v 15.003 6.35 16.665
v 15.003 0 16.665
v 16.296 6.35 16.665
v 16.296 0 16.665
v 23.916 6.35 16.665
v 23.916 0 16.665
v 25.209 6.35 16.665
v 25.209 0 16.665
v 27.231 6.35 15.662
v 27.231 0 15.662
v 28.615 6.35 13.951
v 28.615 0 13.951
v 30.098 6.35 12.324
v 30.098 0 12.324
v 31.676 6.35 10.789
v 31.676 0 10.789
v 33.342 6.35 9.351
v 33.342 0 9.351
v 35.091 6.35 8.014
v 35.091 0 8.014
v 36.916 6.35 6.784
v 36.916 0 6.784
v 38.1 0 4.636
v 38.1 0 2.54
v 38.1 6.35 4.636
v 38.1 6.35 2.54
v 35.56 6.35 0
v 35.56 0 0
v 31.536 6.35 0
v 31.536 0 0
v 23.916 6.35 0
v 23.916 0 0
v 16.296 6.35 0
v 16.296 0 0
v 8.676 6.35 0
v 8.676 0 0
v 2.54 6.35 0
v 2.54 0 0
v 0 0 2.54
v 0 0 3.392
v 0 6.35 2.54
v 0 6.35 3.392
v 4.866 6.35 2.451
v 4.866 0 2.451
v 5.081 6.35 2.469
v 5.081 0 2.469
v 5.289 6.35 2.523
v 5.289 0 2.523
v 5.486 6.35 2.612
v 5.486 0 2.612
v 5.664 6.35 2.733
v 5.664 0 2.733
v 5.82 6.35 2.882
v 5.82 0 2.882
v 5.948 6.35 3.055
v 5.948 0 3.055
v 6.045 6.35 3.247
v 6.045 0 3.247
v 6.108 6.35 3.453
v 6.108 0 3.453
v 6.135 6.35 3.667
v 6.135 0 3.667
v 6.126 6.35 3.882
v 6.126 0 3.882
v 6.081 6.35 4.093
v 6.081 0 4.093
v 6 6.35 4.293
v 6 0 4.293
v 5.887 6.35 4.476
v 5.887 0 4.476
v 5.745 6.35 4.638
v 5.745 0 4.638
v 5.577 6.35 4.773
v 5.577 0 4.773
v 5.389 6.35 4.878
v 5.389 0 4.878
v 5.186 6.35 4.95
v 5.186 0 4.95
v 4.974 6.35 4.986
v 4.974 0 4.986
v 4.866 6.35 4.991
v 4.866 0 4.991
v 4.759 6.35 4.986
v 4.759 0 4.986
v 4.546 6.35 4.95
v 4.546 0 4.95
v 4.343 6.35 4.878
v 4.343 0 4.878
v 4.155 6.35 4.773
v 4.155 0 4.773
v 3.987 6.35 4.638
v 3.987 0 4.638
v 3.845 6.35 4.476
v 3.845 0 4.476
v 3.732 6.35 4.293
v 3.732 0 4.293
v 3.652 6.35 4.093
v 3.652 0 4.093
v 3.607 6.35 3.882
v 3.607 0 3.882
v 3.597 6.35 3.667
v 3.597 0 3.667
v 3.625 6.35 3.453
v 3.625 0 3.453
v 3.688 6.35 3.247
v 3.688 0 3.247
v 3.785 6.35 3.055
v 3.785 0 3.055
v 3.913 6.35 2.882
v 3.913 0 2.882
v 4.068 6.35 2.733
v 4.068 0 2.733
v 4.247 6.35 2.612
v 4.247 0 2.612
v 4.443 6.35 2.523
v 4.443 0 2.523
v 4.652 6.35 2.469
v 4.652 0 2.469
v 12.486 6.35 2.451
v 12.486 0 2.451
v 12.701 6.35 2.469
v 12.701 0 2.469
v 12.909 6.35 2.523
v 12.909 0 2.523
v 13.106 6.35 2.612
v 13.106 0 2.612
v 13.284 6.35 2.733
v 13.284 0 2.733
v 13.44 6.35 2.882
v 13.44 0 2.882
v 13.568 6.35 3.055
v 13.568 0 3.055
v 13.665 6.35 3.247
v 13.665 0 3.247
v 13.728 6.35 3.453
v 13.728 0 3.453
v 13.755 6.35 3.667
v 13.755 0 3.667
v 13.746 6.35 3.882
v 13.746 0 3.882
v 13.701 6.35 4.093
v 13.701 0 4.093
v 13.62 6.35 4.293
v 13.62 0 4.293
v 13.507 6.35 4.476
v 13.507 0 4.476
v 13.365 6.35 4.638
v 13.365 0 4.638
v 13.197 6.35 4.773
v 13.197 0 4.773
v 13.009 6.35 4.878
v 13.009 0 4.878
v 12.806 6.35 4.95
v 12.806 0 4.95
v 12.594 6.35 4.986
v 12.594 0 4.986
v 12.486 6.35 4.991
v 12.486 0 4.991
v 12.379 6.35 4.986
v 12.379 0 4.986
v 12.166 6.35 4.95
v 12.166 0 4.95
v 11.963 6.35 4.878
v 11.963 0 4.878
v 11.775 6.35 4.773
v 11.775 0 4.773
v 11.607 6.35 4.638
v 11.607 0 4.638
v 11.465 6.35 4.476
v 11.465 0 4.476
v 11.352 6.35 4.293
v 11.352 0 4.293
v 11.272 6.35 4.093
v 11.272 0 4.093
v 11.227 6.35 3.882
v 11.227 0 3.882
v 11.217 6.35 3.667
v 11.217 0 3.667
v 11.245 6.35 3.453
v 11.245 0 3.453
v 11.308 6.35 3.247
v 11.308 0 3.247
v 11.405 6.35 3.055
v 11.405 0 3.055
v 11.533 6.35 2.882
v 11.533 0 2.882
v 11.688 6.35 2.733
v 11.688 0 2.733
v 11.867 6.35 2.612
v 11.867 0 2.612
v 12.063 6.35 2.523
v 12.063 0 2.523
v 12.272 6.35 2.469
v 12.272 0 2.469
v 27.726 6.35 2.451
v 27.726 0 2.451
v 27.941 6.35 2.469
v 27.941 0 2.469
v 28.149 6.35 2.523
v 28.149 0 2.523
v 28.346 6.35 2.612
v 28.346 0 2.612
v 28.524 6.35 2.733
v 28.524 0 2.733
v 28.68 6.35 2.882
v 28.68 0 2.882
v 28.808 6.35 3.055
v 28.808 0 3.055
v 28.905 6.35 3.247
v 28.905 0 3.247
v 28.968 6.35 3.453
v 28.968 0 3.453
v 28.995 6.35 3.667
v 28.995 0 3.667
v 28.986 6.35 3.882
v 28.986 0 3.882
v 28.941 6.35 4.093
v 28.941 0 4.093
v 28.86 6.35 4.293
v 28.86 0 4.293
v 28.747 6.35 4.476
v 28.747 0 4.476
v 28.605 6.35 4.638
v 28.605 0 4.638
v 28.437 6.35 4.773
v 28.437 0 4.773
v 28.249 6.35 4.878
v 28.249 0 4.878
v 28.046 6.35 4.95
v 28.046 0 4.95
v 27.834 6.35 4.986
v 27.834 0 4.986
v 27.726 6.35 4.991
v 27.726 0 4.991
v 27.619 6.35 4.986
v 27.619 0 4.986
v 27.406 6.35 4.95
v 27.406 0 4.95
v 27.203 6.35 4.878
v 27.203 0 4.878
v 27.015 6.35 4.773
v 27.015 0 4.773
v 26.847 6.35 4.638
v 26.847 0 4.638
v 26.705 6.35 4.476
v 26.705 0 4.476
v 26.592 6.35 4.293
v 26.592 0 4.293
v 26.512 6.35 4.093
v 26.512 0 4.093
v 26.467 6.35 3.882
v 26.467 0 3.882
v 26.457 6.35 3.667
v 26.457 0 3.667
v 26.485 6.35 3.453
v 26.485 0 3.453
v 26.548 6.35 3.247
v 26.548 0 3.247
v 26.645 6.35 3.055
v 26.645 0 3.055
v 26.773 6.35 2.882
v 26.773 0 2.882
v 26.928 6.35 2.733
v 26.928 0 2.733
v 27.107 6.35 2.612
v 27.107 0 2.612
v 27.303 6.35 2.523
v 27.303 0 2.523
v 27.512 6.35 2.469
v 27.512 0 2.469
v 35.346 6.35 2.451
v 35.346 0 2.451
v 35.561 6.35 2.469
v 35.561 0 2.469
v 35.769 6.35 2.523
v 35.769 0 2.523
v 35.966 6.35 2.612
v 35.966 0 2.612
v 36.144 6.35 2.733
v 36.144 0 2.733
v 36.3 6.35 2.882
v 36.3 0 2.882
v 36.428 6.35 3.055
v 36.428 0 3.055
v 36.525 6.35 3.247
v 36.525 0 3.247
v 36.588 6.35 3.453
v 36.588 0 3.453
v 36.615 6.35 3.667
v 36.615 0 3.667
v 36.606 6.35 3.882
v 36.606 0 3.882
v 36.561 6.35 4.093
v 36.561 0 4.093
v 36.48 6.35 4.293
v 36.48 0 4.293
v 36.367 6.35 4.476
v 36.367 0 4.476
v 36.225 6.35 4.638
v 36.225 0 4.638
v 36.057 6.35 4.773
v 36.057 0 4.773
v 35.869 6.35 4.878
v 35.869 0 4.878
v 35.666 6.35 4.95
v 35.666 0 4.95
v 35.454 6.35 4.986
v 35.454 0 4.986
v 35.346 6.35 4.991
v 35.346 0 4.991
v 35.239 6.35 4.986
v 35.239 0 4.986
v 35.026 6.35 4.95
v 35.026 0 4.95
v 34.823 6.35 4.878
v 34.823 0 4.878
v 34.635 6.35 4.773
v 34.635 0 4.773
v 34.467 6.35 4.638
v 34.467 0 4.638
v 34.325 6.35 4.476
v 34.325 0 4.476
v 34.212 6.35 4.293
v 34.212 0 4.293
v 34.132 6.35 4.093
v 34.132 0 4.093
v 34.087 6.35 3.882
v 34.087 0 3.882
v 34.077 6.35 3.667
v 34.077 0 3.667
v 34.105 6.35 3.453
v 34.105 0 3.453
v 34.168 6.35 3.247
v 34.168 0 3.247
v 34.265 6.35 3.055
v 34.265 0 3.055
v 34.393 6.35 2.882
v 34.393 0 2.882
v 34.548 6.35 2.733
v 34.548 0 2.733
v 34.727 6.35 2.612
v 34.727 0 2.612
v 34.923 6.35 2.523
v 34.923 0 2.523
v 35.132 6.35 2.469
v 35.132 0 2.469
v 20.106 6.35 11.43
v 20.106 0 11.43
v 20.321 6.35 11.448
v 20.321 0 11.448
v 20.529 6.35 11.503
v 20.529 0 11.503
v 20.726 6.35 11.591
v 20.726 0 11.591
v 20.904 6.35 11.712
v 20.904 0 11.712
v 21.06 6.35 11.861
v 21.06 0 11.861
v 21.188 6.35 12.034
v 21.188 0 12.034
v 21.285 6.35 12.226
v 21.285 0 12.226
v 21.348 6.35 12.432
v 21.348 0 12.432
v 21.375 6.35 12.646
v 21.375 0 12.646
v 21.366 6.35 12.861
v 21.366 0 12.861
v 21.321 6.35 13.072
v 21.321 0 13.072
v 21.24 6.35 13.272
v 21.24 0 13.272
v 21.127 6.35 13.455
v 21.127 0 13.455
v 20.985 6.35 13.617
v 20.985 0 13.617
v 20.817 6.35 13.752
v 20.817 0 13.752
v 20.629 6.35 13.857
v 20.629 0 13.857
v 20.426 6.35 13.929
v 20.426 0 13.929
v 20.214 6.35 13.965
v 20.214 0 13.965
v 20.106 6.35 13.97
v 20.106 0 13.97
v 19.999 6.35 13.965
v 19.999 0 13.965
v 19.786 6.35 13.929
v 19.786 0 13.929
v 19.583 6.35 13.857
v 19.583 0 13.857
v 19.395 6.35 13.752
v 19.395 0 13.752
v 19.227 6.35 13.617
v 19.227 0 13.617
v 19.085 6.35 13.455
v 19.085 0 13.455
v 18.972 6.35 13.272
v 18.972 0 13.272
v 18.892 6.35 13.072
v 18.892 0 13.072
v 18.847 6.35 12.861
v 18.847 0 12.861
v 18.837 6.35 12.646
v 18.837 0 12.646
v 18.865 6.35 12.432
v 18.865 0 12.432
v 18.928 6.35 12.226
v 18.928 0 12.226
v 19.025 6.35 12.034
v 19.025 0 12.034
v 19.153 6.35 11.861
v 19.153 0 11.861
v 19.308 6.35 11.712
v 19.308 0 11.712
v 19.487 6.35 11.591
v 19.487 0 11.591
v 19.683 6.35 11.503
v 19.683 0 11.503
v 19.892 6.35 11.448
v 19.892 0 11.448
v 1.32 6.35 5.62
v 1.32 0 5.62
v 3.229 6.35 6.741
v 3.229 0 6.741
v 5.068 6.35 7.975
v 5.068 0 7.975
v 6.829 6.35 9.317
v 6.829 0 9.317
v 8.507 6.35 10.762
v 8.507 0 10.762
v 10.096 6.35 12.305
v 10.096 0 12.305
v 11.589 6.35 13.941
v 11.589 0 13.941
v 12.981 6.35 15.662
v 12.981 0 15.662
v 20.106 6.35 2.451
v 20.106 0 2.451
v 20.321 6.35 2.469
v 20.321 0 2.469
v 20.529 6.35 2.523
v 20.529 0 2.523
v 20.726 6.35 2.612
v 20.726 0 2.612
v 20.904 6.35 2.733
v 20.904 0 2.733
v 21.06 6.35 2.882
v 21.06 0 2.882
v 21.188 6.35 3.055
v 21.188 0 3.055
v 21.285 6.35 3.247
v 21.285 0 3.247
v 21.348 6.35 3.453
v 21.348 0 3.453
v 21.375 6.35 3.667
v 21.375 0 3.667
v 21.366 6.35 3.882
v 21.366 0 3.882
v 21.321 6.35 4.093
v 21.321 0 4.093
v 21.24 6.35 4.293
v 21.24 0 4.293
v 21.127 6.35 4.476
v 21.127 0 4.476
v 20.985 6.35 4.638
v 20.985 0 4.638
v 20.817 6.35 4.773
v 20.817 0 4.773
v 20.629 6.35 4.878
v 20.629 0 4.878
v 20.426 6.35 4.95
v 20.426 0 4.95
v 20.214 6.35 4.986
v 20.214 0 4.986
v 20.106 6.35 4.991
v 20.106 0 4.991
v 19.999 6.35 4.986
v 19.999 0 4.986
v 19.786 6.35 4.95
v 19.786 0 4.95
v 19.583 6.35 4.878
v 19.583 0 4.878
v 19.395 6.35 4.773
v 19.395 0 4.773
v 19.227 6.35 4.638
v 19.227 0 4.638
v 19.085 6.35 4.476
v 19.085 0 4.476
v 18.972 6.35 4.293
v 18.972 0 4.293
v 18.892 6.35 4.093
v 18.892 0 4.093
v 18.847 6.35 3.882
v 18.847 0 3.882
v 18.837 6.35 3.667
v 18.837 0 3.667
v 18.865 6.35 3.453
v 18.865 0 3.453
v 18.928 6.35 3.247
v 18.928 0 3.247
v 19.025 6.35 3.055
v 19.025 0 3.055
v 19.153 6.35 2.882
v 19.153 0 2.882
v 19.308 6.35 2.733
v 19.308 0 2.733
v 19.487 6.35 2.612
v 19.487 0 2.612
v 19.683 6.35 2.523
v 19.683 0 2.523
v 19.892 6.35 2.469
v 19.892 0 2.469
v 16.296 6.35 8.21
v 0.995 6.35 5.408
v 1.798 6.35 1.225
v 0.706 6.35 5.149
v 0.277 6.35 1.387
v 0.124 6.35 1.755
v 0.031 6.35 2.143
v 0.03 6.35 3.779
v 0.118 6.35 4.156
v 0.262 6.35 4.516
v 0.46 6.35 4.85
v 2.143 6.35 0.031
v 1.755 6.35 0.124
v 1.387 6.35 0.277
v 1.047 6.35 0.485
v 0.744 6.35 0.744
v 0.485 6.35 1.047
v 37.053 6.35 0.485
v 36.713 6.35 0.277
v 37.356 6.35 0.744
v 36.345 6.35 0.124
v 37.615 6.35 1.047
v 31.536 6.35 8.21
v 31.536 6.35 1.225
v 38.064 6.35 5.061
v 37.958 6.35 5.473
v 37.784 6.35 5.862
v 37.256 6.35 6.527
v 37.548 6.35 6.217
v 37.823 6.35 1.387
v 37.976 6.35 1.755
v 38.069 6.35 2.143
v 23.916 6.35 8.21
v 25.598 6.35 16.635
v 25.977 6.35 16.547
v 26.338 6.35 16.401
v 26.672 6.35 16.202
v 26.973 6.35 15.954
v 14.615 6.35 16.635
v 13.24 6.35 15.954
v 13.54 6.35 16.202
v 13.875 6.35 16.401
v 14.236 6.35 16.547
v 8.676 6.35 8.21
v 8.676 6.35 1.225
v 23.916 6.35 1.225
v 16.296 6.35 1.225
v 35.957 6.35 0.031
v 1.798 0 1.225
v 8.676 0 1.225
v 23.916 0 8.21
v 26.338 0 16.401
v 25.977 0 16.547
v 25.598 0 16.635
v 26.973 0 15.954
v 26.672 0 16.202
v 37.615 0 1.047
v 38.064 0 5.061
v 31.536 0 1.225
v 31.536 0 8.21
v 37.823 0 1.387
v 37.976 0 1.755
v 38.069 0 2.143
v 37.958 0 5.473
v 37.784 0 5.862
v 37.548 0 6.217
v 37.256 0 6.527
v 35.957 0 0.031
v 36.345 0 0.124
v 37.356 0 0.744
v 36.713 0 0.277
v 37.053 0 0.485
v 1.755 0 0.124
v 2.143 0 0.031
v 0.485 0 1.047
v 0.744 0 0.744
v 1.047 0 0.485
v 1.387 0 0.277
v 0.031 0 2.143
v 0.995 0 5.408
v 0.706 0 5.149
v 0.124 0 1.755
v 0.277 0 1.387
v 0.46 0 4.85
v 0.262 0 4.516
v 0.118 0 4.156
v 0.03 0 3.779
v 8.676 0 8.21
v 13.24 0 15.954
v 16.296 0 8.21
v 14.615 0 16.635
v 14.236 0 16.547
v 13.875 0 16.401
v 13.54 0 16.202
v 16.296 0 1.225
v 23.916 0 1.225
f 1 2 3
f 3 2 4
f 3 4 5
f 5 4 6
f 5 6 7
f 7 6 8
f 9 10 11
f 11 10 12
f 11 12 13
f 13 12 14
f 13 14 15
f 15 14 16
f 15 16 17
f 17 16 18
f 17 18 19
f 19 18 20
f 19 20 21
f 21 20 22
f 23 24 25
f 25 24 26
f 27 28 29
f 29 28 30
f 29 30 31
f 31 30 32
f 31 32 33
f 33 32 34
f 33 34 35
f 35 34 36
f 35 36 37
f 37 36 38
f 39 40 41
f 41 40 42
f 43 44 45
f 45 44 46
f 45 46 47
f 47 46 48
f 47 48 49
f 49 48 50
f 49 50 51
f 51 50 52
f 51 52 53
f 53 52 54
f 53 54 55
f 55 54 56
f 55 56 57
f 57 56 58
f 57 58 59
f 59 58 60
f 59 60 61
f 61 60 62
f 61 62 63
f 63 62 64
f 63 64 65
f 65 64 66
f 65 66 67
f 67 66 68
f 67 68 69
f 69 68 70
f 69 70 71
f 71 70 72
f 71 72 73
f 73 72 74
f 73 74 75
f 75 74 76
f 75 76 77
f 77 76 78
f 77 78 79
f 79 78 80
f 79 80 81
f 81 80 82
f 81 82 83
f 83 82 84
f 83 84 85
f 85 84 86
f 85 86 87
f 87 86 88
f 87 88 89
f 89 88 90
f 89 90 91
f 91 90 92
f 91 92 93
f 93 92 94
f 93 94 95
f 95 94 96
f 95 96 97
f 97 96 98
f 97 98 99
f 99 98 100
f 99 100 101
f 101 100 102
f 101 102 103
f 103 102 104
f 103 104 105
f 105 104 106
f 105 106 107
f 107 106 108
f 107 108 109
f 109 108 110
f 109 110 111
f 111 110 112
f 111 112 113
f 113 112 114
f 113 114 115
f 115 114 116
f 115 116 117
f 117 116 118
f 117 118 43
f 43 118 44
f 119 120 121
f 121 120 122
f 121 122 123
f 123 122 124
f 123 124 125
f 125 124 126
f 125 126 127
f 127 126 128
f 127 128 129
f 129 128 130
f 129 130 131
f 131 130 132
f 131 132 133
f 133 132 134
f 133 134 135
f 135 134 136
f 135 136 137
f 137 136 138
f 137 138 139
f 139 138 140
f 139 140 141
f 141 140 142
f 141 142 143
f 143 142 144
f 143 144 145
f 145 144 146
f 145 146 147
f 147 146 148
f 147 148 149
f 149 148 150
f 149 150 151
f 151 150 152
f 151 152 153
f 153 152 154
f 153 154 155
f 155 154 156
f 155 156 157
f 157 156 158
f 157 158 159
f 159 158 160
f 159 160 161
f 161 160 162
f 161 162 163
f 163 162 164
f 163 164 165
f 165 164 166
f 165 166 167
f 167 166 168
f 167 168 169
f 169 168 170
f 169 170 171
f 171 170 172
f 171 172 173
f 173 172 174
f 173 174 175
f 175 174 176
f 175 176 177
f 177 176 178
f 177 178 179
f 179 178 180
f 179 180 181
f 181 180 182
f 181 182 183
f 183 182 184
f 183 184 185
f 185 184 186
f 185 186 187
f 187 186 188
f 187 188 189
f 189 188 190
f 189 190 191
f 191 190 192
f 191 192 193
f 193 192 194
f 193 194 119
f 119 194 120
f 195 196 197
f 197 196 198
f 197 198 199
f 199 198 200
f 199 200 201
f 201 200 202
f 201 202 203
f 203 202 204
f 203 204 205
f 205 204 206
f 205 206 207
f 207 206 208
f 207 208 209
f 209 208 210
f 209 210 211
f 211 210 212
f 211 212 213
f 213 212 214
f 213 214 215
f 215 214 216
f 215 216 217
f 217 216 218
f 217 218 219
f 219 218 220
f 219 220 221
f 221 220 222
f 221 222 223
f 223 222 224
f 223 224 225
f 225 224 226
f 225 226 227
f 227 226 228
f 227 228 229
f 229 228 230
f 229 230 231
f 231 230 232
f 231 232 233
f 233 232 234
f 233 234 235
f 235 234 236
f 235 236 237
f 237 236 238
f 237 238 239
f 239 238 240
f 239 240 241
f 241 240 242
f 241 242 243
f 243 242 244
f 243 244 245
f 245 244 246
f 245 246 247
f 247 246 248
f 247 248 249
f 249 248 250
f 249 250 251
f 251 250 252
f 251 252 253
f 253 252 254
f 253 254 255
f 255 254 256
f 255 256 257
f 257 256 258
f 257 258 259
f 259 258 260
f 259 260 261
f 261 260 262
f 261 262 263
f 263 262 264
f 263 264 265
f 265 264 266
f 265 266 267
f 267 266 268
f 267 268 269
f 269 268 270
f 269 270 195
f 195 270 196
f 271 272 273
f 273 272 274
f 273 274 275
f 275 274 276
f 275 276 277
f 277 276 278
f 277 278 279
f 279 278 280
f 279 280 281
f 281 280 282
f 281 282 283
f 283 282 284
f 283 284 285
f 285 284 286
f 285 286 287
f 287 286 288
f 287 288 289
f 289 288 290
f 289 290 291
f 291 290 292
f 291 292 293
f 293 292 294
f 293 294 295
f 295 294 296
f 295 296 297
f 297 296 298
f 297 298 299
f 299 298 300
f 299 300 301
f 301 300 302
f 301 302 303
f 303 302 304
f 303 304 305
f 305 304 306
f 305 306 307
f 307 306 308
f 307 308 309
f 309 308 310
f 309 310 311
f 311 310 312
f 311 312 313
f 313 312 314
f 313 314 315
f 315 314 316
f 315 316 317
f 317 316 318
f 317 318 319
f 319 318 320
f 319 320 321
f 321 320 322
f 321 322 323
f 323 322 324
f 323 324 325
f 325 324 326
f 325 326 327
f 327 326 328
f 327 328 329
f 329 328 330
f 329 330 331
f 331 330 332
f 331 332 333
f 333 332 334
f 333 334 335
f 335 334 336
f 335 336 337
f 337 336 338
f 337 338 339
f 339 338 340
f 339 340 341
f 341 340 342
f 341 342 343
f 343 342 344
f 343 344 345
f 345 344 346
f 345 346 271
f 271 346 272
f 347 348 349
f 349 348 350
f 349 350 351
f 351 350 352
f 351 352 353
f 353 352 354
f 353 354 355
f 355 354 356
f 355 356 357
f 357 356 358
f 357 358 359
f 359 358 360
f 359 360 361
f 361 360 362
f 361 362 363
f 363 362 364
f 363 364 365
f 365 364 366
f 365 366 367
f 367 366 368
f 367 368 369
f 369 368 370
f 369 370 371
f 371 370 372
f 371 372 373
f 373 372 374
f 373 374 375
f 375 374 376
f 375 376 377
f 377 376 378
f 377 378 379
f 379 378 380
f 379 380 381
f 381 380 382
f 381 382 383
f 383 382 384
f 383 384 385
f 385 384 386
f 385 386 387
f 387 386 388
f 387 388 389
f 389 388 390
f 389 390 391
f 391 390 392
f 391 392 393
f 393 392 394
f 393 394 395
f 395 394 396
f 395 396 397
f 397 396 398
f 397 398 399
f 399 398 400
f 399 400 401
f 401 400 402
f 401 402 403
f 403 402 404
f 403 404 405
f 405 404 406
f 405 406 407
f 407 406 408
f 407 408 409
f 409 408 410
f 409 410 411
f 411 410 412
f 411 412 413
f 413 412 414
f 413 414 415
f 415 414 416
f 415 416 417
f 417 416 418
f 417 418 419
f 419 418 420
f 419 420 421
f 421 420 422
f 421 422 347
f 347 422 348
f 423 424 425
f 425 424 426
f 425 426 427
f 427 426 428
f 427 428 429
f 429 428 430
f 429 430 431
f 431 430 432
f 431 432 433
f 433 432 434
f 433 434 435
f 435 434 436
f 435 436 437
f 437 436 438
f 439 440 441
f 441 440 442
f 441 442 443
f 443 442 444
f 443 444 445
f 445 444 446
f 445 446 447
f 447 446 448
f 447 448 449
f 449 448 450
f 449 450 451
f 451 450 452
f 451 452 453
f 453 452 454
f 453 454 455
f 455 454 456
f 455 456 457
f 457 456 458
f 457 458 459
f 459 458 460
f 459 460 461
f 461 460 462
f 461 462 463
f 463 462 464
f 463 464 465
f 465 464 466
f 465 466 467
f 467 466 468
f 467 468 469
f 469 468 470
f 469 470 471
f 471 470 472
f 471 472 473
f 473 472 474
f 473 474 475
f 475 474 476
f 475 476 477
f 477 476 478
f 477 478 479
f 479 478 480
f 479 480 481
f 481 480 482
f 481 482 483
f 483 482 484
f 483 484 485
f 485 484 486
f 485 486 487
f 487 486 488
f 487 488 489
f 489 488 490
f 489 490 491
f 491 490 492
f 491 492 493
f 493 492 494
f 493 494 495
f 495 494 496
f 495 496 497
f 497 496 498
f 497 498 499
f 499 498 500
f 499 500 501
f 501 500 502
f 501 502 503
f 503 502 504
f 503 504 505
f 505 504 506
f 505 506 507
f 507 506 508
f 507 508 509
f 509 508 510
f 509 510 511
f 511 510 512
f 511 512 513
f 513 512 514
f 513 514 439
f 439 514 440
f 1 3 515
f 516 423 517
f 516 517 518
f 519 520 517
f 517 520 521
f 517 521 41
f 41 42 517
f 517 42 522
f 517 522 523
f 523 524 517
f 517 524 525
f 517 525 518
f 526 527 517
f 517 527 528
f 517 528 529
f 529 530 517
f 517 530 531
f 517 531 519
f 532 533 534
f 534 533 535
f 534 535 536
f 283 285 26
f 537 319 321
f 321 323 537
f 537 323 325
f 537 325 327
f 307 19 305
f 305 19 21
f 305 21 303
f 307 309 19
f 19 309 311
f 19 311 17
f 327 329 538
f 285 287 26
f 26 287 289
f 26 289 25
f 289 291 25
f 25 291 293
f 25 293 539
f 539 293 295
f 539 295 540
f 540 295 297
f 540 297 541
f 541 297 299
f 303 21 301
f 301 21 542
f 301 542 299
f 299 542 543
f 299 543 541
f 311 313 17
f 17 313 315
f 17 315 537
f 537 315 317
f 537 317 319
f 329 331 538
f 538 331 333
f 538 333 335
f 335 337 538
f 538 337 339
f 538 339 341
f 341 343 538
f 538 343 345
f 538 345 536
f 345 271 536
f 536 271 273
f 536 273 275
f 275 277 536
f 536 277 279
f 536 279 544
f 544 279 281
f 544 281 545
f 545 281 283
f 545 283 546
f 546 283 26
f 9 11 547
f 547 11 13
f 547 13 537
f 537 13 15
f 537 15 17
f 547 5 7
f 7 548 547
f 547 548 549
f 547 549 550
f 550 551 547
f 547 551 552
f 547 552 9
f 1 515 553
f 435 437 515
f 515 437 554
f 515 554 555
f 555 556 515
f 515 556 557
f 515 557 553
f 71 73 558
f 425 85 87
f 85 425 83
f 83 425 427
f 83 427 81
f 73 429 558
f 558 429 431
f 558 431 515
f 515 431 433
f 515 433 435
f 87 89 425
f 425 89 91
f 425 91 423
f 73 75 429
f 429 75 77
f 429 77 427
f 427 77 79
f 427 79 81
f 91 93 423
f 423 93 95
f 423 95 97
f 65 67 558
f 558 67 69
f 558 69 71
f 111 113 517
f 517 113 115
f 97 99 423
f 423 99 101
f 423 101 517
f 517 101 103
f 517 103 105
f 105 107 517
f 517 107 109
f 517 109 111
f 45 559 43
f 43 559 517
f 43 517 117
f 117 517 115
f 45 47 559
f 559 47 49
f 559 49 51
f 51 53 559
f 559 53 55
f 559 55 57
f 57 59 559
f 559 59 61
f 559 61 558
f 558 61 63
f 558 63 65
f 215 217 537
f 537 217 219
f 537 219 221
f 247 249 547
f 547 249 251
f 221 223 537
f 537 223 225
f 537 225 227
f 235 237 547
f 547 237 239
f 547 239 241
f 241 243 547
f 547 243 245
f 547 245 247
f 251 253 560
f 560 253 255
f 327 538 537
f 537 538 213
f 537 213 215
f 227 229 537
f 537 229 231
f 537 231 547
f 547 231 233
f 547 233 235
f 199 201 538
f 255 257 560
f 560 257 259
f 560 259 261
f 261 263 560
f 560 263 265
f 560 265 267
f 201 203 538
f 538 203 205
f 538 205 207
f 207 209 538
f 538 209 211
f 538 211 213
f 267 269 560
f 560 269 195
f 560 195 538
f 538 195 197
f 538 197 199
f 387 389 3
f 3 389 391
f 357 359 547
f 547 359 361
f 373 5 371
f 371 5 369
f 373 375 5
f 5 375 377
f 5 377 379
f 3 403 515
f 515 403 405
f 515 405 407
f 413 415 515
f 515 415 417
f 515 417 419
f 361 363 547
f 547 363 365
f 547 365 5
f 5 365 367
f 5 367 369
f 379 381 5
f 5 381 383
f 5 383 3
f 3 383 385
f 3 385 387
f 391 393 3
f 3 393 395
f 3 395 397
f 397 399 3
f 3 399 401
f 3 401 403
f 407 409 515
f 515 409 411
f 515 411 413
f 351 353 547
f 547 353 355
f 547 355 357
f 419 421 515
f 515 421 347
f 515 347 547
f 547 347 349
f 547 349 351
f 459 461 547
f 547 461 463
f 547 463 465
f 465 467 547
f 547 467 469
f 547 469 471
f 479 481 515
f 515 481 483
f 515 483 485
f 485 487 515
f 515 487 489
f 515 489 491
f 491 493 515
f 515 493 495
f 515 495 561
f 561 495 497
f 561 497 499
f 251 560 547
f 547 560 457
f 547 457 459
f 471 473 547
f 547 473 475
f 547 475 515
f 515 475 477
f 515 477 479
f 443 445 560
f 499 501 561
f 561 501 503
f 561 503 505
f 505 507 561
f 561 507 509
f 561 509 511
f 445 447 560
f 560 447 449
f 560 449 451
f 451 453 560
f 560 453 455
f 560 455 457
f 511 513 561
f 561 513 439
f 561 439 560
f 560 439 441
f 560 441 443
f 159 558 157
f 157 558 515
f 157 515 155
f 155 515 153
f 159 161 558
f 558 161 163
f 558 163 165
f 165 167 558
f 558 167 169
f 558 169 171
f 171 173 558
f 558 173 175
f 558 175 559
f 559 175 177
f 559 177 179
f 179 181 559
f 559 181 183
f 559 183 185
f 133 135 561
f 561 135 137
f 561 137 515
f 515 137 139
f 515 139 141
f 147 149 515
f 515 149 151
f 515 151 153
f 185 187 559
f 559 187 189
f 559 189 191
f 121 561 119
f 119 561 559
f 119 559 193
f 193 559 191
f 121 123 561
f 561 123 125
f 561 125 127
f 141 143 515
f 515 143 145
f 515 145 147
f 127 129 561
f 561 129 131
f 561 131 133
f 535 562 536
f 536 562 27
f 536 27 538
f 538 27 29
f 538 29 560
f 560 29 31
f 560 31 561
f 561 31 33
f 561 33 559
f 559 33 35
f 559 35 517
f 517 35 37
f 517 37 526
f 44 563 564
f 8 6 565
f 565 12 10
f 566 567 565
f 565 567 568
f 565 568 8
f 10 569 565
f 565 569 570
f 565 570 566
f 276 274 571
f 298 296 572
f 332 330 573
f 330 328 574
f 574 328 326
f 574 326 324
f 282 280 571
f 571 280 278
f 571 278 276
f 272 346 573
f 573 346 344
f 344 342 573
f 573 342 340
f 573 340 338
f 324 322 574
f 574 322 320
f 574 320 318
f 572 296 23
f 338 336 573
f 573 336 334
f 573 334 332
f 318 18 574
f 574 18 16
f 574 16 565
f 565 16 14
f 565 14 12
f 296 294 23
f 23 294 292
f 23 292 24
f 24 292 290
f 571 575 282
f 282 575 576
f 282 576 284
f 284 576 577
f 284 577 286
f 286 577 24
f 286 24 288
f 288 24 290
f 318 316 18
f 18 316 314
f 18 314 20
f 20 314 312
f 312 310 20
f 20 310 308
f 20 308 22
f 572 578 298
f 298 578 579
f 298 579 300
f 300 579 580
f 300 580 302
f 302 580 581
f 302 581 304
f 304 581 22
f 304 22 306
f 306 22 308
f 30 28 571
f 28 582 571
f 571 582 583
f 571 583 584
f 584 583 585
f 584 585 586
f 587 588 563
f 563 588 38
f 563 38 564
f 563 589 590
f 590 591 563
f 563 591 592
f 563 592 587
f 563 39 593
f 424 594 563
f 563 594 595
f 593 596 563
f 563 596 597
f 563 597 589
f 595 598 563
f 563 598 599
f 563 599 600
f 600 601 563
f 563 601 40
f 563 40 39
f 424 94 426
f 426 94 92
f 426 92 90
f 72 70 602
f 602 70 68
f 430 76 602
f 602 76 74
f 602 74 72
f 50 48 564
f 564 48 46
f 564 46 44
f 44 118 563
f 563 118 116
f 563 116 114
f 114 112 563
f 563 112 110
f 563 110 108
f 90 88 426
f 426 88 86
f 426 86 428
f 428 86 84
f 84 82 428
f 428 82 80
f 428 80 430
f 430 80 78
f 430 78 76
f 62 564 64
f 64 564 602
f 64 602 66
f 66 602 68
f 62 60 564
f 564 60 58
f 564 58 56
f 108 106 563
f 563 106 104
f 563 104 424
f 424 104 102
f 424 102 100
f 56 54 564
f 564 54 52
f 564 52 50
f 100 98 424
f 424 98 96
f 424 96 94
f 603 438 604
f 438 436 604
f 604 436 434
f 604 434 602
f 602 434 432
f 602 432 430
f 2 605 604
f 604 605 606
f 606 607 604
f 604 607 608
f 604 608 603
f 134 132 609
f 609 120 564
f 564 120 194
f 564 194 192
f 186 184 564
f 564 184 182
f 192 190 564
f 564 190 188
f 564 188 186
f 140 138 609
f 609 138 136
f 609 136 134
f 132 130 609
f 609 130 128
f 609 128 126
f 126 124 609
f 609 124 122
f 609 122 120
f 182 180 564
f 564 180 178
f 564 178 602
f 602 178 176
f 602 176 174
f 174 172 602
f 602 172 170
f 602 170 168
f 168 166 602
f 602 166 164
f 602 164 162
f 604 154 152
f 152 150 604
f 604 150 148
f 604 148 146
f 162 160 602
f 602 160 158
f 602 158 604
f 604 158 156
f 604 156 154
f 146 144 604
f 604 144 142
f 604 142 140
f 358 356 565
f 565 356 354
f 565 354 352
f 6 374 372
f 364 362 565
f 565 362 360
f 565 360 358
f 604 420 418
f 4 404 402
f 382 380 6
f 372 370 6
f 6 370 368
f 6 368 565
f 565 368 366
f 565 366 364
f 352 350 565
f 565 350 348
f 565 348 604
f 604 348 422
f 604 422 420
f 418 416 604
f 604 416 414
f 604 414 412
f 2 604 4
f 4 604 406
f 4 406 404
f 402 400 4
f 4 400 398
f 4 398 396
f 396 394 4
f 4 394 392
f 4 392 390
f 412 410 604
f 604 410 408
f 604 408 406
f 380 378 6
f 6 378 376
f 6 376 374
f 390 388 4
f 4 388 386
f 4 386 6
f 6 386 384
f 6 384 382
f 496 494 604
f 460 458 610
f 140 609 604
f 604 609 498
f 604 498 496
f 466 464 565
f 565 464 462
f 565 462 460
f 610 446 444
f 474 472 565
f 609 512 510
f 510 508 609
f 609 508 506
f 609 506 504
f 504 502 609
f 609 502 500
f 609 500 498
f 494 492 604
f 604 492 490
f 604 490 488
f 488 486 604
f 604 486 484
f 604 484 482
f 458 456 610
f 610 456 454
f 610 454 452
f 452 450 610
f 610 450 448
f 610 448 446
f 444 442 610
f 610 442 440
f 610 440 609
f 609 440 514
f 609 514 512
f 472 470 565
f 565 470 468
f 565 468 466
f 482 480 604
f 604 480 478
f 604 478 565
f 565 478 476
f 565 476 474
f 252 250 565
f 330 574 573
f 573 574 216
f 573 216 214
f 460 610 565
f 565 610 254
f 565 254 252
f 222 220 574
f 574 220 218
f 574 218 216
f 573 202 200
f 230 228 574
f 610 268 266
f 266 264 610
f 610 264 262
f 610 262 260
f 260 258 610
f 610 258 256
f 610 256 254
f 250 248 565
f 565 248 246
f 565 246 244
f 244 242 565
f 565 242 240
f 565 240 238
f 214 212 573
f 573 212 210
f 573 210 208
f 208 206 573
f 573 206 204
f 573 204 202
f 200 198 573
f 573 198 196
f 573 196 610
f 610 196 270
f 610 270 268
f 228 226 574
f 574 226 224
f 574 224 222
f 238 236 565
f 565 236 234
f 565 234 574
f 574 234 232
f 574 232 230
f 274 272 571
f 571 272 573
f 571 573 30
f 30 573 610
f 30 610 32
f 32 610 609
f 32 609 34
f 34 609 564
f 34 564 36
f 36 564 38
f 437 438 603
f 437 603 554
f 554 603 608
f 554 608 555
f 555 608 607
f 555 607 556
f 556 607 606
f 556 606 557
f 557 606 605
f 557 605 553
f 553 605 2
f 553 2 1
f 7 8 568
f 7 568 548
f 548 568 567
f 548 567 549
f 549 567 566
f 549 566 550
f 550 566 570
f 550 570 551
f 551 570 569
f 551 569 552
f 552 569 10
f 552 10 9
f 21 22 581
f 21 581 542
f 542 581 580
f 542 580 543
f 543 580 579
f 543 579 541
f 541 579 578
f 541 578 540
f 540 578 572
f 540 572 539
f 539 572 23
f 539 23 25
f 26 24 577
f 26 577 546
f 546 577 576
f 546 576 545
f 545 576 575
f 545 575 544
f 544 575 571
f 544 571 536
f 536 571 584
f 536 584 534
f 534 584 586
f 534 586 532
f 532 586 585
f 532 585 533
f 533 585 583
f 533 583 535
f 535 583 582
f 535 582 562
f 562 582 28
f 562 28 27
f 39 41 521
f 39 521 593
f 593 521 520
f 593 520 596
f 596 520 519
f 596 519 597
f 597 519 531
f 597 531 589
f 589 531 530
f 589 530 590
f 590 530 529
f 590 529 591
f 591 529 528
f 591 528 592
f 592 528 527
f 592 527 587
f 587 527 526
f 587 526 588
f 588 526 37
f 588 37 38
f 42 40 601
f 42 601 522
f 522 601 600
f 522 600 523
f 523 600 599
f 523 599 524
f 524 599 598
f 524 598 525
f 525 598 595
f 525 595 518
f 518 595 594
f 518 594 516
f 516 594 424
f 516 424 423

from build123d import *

# Parameters (mm, degrees)
SKETCH1_R           = 1.27
BOSS_EXTRUDE1_DEPTH = 6.35
FILLET1_R           = 2.54


with BuildPart() as part:
    # Sketch1 → Boss-Extrude1 (new body)
    with BuildSketch(Plane(origin=(0, 0, 0), x_dir=(1, 0, 0), z_dir=(0, 1, 0))):
        with BuildLine():
            Line((0, 0), (0, -4.931110589))
            ThreePointArc((0, -4.931110589), (7.586259225, -9.94755683), (13.717235362, -16.665234517))
            Line((13.717235362, -16.665234517), (26.495237193, -16.665234517))
            ThreePointArc((26.495237193, -16.665234517), (31.727577758, -10.741894012), (38.1, -6.06689826))
            Line((38.1, -6.06689826), (38.1, 0))
            Line((38.1, 0), (0, 0))
        make_face()
        with Locations((20.106236278, -12.7)):
            Circle(SKETCH1_R, mode=Mode.SUBTRACT)
        with Locations((4.866236278, -3.72093702)):
            Circle(SKETCH1_R, mode=Mode.SUBTRACT)
        with Locations((12.486236278, -3.72093702)):
            Circle(SKETCH1_R, mode=Mode.SUBTRACT)
        with Locations((20.106236278, -3.72093702)):
            Circle(SKETCH1_R, mode=Mode.SUBTRACT)
        with Locations((27.726236278, -3.72093702)):
            Circle(SKETCH1_R, mode=Mode.SUBTRACT)
        with Locations((35.346236278, -3.72093702)):
            Circle(SKETCH1_R, mode=Mode.SUBTRACT)
    extrude(amount=BOSS_EXTRUDE1_DEPTH)

    # Fillet1
    fillet1_edges = [part.edges().sort_by_distance(p)[0] for p in [
        (13.717235362, 3.175, 16.665234517),
        (0, 3.175, 4.931110589),
        (0, 3.175, 0),
        (38.1, 3.175, 0),
        (38.1, 3.175, 6.06689826),
        (26.495237193, 3.175, 16.665234517),
    ]]
    fillet(fillet1_edges, radius=FILLET1_R)


solid = part.part
